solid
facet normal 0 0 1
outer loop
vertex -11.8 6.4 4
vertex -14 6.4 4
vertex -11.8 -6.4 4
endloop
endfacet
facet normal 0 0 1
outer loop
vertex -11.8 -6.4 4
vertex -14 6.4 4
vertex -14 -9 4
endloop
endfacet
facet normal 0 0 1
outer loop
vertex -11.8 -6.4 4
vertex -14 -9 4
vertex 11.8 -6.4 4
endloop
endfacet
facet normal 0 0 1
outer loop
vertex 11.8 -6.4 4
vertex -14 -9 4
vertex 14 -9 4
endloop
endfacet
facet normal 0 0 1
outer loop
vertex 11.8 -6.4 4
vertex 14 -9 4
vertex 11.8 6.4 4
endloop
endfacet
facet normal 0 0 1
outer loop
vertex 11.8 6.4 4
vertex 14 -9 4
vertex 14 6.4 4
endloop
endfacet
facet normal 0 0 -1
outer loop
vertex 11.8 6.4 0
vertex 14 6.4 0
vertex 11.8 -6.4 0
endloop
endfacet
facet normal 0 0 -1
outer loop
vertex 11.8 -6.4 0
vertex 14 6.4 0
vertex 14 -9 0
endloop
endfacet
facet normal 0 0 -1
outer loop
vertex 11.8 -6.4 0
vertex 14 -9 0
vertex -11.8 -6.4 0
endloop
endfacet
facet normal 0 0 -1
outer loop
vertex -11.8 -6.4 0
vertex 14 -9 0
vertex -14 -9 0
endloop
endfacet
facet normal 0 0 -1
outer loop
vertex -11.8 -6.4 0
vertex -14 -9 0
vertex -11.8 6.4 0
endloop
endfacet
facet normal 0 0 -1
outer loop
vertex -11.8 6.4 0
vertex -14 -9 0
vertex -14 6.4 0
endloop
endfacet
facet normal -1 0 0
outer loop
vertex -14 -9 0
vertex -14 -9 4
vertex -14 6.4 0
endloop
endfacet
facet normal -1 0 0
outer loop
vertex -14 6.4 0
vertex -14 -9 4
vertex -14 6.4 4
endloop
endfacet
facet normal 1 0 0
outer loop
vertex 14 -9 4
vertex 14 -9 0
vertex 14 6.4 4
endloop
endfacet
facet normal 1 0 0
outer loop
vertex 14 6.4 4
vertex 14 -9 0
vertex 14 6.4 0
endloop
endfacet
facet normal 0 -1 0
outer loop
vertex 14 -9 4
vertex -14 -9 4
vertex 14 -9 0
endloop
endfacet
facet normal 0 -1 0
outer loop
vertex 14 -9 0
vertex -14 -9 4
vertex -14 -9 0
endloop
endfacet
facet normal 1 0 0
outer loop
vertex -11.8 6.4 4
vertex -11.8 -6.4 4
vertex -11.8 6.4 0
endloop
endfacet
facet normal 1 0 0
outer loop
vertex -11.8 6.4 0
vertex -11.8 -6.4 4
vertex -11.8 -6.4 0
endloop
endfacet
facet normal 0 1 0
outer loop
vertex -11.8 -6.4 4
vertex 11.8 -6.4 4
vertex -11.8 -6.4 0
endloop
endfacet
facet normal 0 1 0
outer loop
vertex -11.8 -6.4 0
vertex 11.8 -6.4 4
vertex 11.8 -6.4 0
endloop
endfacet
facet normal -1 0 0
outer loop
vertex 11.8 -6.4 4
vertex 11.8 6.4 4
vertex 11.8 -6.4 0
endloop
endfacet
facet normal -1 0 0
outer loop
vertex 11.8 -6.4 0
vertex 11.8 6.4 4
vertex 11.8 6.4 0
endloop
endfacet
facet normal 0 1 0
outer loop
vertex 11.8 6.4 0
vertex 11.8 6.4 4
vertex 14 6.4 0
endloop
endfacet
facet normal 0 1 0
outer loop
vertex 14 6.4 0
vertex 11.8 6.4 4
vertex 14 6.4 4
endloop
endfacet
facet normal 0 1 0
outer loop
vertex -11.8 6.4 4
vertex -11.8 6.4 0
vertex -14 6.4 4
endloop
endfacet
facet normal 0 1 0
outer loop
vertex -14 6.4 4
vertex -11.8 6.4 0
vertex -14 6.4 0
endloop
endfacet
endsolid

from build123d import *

# Parameters (mm, degrees)
SKETCH2_W                           = 28
SKETCH2_H                           = 18
SKETCH2_W_2                         = 23.6
SKETCH2_H_2                         = 12.8
SERVO_MOUNT_CRADLE_DEPTH            = 4
SKETCH3_W                           = 40
SKETCH3_H                           = 10
REAR_WALL_CLEARANCE_U_BRACKET_DEPTH = 18.117242769


with BuildPart() as part:
    # Sketch2 → Servo_mount_cradle (new body)
    with BuildSketch(Plane.XY):
        Rectangle(SKETCH2_W, SKETCH2_H)
        Rectangle(SKETCH2_W_2, SKETCH2_H_2, mode=Mode.SUBTRACT)
    extrude(amount=SERVO_MOUNT_CRADLE_DEPTH)

    # Sketch3 → Rear_wall_clearance_U_bracket (cut, through all)
    with BuildSketch(Plane.XY):
        with Locations((0, 11.4)):
            Rectangle(SKETCH3_W, SKETCH3_H)
    extrude(amount=REAR_WALL_CLEARANCE_U_BRACKET_DEPTH, mode=Mode.SUBTRACT)


solid = part.part
